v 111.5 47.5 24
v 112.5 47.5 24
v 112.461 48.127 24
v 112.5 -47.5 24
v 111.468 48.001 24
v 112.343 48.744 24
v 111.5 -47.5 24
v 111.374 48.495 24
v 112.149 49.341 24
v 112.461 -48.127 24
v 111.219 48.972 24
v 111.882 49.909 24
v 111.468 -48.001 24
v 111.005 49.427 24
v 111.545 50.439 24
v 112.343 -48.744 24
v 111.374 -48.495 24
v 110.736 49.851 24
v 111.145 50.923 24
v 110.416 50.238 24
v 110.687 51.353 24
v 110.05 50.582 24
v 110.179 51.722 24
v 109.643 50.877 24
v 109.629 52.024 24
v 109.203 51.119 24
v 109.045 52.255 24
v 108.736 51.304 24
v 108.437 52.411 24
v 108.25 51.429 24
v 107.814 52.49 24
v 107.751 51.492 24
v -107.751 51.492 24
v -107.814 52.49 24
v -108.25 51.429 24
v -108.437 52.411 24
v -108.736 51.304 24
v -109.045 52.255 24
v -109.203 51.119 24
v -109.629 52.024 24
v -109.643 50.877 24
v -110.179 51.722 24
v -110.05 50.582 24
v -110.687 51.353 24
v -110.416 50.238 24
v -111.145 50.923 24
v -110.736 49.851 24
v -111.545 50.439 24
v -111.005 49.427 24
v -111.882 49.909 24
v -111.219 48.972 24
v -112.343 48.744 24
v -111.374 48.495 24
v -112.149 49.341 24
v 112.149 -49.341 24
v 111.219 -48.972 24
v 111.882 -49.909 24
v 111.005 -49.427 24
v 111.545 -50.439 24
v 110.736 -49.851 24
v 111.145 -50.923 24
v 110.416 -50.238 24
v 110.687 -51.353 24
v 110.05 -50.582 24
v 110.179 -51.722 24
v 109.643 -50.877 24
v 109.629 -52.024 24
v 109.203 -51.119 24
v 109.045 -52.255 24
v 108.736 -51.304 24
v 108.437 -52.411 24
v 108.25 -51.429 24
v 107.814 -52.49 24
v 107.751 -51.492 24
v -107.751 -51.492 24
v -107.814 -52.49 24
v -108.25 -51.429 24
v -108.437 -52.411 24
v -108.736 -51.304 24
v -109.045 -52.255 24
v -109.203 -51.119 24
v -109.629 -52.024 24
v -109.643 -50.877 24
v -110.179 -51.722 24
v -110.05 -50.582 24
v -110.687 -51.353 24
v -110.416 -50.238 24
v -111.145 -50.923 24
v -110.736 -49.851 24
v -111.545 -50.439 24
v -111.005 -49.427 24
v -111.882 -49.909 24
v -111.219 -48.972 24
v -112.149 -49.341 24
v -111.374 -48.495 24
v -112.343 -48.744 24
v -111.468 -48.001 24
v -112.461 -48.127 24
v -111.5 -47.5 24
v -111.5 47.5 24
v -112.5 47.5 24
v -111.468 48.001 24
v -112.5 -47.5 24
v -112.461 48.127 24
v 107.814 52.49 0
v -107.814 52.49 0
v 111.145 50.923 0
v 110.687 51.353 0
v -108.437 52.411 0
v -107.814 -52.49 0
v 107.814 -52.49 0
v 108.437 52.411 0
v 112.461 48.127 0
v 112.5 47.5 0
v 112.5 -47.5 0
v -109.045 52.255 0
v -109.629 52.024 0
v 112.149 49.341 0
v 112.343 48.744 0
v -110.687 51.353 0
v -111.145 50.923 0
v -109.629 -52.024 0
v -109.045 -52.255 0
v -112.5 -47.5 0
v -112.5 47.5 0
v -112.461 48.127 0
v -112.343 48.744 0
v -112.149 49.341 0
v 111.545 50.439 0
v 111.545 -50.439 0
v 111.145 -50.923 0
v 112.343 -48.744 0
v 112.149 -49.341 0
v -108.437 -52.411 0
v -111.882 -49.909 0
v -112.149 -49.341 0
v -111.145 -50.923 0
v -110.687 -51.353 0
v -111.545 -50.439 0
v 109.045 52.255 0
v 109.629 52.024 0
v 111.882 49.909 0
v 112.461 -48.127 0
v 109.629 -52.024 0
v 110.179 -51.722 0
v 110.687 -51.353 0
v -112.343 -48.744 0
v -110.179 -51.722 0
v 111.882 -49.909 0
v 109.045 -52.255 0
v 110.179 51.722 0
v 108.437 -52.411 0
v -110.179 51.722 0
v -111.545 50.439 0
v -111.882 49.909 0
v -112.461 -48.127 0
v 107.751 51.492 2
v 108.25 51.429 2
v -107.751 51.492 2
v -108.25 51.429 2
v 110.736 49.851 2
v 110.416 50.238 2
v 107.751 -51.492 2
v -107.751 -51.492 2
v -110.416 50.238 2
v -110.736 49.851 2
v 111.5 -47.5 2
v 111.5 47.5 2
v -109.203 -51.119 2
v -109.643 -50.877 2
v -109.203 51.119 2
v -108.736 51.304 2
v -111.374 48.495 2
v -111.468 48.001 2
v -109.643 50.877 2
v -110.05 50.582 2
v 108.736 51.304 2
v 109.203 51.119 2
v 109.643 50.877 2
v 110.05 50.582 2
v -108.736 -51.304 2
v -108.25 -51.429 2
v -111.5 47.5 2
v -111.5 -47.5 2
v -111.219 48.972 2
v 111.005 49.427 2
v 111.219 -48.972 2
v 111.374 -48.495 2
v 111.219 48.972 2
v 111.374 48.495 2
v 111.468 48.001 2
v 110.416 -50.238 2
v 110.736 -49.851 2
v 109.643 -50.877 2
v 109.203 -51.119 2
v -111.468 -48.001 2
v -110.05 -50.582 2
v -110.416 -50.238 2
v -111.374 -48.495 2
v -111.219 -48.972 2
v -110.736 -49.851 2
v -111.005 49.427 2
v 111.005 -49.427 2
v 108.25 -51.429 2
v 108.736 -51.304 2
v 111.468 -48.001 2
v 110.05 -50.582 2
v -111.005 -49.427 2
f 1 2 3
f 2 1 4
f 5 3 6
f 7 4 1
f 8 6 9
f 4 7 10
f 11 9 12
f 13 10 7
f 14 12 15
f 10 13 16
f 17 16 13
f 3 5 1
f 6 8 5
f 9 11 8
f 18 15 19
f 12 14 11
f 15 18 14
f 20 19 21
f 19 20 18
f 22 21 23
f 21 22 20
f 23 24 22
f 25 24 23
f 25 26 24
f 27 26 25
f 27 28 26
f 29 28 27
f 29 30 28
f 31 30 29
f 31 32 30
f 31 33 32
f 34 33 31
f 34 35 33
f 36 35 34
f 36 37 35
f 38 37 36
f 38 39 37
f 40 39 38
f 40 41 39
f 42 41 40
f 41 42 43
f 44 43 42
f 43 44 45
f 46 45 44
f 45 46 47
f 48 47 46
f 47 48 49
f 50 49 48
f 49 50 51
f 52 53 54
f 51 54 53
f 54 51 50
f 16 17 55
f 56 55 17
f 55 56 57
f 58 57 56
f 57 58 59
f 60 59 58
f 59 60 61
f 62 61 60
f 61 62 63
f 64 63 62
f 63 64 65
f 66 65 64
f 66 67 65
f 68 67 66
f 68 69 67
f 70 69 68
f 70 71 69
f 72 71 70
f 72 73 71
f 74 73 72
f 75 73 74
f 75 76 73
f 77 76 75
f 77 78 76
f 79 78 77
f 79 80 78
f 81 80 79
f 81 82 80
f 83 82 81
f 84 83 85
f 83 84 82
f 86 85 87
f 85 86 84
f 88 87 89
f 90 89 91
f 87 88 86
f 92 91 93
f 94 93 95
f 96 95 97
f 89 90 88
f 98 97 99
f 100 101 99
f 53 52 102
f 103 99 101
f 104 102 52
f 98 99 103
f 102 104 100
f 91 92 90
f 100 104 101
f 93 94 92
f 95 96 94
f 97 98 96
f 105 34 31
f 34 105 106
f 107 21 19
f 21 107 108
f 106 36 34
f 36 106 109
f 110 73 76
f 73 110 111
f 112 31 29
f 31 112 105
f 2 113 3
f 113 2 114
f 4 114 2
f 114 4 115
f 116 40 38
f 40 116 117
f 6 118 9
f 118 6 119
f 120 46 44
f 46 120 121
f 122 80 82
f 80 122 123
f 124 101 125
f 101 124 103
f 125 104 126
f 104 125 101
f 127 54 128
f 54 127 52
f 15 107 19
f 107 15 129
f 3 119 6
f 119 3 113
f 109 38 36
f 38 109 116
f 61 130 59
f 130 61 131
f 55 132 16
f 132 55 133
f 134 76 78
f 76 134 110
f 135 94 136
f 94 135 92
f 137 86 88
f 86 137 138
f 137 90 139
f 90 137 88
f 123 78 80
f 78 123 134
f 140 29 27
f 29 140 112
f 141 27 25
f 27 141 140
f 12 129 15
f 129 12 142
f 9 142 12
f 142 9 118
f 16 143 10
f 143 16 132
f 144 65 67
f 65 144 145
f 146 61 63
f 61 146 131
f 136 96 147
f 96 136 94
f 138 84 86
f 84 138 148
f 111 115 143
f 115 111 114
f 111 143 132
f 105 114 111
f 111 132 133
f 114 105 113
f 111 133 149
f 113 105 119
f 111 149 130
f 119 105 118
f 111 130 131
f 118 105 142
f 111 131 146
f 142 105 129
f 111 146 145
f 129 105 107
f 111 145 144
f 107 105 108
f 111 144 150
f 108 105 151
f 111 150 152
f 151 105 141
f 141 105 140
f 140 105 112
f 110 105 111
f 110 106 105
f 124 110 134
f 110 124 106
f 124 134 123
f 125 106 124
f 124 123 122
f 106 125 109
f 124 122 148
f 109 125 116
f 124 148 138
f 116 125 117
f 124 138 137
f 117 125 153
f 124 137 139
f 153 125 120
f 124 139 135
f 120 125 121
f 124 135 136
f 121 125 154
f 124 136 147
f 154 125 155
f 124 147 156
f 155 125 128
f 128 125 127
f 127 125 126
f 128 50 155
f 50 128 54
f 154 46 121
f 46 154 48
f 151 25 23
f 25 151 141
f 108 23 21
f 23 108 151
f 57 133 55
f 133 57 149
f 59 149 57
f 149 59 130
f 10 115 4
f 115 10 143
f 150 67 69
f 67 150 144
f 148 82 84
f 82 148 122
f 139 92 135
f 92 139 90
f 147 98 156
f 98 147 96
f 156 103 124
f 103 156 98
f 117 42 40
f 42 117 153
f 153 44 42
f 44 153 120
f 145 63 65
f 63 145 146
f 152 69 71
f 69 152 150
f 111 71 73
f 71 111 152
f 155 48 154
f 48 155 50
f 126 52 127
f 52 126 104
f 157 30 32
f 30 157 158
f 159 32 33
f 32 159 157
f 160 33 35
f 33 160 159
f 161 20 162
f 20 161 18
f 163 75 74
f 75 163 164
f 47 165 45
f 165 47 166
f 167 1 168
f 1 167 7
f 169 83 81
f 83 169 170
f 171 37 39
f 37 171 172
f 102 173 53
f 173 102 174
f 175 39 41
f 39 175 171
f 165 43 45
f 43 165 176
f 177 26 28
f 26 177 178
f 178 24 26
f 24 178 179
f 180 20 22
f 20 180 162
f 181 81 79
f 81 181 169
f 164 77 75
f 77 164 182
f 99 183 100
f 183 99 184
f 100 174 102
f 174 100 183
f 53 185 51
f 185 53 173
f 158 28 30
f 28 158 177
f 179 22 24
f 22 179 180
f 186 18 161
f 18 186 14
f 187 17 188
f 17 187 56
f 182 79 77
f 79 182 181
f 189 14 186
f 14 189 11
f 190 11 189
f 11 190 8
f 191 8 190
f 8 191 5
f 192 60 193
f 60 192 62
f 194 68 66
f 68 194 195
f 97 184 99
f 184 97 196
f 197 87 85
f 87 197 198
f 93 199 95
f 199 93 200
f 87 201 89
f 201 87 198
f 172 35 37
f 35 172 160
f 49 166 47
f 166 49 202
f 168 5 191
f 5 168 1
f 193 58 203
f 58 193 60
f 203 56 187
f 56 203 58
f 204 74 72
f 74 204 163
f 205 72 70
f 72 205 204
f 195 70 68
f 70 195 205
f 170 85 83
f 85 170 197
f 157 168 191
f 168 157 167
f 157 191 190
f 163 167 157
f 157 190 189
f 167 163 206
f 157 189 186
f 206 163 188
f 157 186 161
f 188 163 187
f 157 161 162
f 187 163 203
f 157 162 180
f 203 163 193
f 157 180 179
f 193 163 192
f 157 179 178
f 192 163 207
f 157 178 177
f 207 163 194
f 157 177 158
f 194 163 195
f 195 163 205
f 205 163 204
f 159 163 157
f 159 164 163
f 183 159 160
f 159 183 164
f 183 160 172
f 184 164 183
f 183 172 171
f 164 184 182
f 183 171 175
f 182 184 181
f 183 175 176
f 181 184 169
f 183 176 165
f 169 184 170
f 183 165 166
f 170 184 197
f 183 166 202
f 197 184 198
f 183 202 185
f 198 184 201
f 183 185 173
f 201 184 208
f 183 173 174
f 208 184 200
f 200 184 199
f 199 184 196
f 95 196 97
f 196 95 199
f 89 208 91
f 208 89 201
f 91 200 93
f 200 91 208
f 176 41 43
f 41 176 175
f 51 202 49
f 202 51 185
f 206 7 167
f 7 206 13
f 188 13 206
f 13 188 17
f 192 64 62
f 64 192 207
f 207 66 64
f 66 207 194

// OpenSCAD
$fn = 50;


difference() {
	union() {
		hull() {
			translate(v = [-107.5000000000, 47.5000000000, 0]) {
				cylinder(h = 24, r = 5);
			}
			translate(v = [107.5000000000, 47.5000000000, 0]) {
				cylinder(h = 24, r = 5);
			}
			translate(v = [-107.5000000000, -47.5000000000, 0]) {
				cylinder(h = 24, r = 5);
			}
			translate(v = [107.5000000000, -47.5000000000, 0]) {
				cylinder(h = 24, r = 5);
			}
		}
	}
	union() {
		translate(v = [0, 0, 2]) {
			hull() {
				translate(v = [-107.5000000000, 47.5000000000, 0]) {
					cylinder(h = 22, r = 4);
				}
				translate(v = [107.5000000000, 47.5000000000, 0]) {
					cylinder(h = 22, r = 4);
				}
				translate(v = [-107.5000000000, -47.5000000000, 0]) {
					cylinder(h = 22, r = 4);
				}
				translate(v = [107.5000000000, -47.5000000000, 0]) {
					cylinder(h = 22, r = 4);
				}
			}
		}
	}
}
